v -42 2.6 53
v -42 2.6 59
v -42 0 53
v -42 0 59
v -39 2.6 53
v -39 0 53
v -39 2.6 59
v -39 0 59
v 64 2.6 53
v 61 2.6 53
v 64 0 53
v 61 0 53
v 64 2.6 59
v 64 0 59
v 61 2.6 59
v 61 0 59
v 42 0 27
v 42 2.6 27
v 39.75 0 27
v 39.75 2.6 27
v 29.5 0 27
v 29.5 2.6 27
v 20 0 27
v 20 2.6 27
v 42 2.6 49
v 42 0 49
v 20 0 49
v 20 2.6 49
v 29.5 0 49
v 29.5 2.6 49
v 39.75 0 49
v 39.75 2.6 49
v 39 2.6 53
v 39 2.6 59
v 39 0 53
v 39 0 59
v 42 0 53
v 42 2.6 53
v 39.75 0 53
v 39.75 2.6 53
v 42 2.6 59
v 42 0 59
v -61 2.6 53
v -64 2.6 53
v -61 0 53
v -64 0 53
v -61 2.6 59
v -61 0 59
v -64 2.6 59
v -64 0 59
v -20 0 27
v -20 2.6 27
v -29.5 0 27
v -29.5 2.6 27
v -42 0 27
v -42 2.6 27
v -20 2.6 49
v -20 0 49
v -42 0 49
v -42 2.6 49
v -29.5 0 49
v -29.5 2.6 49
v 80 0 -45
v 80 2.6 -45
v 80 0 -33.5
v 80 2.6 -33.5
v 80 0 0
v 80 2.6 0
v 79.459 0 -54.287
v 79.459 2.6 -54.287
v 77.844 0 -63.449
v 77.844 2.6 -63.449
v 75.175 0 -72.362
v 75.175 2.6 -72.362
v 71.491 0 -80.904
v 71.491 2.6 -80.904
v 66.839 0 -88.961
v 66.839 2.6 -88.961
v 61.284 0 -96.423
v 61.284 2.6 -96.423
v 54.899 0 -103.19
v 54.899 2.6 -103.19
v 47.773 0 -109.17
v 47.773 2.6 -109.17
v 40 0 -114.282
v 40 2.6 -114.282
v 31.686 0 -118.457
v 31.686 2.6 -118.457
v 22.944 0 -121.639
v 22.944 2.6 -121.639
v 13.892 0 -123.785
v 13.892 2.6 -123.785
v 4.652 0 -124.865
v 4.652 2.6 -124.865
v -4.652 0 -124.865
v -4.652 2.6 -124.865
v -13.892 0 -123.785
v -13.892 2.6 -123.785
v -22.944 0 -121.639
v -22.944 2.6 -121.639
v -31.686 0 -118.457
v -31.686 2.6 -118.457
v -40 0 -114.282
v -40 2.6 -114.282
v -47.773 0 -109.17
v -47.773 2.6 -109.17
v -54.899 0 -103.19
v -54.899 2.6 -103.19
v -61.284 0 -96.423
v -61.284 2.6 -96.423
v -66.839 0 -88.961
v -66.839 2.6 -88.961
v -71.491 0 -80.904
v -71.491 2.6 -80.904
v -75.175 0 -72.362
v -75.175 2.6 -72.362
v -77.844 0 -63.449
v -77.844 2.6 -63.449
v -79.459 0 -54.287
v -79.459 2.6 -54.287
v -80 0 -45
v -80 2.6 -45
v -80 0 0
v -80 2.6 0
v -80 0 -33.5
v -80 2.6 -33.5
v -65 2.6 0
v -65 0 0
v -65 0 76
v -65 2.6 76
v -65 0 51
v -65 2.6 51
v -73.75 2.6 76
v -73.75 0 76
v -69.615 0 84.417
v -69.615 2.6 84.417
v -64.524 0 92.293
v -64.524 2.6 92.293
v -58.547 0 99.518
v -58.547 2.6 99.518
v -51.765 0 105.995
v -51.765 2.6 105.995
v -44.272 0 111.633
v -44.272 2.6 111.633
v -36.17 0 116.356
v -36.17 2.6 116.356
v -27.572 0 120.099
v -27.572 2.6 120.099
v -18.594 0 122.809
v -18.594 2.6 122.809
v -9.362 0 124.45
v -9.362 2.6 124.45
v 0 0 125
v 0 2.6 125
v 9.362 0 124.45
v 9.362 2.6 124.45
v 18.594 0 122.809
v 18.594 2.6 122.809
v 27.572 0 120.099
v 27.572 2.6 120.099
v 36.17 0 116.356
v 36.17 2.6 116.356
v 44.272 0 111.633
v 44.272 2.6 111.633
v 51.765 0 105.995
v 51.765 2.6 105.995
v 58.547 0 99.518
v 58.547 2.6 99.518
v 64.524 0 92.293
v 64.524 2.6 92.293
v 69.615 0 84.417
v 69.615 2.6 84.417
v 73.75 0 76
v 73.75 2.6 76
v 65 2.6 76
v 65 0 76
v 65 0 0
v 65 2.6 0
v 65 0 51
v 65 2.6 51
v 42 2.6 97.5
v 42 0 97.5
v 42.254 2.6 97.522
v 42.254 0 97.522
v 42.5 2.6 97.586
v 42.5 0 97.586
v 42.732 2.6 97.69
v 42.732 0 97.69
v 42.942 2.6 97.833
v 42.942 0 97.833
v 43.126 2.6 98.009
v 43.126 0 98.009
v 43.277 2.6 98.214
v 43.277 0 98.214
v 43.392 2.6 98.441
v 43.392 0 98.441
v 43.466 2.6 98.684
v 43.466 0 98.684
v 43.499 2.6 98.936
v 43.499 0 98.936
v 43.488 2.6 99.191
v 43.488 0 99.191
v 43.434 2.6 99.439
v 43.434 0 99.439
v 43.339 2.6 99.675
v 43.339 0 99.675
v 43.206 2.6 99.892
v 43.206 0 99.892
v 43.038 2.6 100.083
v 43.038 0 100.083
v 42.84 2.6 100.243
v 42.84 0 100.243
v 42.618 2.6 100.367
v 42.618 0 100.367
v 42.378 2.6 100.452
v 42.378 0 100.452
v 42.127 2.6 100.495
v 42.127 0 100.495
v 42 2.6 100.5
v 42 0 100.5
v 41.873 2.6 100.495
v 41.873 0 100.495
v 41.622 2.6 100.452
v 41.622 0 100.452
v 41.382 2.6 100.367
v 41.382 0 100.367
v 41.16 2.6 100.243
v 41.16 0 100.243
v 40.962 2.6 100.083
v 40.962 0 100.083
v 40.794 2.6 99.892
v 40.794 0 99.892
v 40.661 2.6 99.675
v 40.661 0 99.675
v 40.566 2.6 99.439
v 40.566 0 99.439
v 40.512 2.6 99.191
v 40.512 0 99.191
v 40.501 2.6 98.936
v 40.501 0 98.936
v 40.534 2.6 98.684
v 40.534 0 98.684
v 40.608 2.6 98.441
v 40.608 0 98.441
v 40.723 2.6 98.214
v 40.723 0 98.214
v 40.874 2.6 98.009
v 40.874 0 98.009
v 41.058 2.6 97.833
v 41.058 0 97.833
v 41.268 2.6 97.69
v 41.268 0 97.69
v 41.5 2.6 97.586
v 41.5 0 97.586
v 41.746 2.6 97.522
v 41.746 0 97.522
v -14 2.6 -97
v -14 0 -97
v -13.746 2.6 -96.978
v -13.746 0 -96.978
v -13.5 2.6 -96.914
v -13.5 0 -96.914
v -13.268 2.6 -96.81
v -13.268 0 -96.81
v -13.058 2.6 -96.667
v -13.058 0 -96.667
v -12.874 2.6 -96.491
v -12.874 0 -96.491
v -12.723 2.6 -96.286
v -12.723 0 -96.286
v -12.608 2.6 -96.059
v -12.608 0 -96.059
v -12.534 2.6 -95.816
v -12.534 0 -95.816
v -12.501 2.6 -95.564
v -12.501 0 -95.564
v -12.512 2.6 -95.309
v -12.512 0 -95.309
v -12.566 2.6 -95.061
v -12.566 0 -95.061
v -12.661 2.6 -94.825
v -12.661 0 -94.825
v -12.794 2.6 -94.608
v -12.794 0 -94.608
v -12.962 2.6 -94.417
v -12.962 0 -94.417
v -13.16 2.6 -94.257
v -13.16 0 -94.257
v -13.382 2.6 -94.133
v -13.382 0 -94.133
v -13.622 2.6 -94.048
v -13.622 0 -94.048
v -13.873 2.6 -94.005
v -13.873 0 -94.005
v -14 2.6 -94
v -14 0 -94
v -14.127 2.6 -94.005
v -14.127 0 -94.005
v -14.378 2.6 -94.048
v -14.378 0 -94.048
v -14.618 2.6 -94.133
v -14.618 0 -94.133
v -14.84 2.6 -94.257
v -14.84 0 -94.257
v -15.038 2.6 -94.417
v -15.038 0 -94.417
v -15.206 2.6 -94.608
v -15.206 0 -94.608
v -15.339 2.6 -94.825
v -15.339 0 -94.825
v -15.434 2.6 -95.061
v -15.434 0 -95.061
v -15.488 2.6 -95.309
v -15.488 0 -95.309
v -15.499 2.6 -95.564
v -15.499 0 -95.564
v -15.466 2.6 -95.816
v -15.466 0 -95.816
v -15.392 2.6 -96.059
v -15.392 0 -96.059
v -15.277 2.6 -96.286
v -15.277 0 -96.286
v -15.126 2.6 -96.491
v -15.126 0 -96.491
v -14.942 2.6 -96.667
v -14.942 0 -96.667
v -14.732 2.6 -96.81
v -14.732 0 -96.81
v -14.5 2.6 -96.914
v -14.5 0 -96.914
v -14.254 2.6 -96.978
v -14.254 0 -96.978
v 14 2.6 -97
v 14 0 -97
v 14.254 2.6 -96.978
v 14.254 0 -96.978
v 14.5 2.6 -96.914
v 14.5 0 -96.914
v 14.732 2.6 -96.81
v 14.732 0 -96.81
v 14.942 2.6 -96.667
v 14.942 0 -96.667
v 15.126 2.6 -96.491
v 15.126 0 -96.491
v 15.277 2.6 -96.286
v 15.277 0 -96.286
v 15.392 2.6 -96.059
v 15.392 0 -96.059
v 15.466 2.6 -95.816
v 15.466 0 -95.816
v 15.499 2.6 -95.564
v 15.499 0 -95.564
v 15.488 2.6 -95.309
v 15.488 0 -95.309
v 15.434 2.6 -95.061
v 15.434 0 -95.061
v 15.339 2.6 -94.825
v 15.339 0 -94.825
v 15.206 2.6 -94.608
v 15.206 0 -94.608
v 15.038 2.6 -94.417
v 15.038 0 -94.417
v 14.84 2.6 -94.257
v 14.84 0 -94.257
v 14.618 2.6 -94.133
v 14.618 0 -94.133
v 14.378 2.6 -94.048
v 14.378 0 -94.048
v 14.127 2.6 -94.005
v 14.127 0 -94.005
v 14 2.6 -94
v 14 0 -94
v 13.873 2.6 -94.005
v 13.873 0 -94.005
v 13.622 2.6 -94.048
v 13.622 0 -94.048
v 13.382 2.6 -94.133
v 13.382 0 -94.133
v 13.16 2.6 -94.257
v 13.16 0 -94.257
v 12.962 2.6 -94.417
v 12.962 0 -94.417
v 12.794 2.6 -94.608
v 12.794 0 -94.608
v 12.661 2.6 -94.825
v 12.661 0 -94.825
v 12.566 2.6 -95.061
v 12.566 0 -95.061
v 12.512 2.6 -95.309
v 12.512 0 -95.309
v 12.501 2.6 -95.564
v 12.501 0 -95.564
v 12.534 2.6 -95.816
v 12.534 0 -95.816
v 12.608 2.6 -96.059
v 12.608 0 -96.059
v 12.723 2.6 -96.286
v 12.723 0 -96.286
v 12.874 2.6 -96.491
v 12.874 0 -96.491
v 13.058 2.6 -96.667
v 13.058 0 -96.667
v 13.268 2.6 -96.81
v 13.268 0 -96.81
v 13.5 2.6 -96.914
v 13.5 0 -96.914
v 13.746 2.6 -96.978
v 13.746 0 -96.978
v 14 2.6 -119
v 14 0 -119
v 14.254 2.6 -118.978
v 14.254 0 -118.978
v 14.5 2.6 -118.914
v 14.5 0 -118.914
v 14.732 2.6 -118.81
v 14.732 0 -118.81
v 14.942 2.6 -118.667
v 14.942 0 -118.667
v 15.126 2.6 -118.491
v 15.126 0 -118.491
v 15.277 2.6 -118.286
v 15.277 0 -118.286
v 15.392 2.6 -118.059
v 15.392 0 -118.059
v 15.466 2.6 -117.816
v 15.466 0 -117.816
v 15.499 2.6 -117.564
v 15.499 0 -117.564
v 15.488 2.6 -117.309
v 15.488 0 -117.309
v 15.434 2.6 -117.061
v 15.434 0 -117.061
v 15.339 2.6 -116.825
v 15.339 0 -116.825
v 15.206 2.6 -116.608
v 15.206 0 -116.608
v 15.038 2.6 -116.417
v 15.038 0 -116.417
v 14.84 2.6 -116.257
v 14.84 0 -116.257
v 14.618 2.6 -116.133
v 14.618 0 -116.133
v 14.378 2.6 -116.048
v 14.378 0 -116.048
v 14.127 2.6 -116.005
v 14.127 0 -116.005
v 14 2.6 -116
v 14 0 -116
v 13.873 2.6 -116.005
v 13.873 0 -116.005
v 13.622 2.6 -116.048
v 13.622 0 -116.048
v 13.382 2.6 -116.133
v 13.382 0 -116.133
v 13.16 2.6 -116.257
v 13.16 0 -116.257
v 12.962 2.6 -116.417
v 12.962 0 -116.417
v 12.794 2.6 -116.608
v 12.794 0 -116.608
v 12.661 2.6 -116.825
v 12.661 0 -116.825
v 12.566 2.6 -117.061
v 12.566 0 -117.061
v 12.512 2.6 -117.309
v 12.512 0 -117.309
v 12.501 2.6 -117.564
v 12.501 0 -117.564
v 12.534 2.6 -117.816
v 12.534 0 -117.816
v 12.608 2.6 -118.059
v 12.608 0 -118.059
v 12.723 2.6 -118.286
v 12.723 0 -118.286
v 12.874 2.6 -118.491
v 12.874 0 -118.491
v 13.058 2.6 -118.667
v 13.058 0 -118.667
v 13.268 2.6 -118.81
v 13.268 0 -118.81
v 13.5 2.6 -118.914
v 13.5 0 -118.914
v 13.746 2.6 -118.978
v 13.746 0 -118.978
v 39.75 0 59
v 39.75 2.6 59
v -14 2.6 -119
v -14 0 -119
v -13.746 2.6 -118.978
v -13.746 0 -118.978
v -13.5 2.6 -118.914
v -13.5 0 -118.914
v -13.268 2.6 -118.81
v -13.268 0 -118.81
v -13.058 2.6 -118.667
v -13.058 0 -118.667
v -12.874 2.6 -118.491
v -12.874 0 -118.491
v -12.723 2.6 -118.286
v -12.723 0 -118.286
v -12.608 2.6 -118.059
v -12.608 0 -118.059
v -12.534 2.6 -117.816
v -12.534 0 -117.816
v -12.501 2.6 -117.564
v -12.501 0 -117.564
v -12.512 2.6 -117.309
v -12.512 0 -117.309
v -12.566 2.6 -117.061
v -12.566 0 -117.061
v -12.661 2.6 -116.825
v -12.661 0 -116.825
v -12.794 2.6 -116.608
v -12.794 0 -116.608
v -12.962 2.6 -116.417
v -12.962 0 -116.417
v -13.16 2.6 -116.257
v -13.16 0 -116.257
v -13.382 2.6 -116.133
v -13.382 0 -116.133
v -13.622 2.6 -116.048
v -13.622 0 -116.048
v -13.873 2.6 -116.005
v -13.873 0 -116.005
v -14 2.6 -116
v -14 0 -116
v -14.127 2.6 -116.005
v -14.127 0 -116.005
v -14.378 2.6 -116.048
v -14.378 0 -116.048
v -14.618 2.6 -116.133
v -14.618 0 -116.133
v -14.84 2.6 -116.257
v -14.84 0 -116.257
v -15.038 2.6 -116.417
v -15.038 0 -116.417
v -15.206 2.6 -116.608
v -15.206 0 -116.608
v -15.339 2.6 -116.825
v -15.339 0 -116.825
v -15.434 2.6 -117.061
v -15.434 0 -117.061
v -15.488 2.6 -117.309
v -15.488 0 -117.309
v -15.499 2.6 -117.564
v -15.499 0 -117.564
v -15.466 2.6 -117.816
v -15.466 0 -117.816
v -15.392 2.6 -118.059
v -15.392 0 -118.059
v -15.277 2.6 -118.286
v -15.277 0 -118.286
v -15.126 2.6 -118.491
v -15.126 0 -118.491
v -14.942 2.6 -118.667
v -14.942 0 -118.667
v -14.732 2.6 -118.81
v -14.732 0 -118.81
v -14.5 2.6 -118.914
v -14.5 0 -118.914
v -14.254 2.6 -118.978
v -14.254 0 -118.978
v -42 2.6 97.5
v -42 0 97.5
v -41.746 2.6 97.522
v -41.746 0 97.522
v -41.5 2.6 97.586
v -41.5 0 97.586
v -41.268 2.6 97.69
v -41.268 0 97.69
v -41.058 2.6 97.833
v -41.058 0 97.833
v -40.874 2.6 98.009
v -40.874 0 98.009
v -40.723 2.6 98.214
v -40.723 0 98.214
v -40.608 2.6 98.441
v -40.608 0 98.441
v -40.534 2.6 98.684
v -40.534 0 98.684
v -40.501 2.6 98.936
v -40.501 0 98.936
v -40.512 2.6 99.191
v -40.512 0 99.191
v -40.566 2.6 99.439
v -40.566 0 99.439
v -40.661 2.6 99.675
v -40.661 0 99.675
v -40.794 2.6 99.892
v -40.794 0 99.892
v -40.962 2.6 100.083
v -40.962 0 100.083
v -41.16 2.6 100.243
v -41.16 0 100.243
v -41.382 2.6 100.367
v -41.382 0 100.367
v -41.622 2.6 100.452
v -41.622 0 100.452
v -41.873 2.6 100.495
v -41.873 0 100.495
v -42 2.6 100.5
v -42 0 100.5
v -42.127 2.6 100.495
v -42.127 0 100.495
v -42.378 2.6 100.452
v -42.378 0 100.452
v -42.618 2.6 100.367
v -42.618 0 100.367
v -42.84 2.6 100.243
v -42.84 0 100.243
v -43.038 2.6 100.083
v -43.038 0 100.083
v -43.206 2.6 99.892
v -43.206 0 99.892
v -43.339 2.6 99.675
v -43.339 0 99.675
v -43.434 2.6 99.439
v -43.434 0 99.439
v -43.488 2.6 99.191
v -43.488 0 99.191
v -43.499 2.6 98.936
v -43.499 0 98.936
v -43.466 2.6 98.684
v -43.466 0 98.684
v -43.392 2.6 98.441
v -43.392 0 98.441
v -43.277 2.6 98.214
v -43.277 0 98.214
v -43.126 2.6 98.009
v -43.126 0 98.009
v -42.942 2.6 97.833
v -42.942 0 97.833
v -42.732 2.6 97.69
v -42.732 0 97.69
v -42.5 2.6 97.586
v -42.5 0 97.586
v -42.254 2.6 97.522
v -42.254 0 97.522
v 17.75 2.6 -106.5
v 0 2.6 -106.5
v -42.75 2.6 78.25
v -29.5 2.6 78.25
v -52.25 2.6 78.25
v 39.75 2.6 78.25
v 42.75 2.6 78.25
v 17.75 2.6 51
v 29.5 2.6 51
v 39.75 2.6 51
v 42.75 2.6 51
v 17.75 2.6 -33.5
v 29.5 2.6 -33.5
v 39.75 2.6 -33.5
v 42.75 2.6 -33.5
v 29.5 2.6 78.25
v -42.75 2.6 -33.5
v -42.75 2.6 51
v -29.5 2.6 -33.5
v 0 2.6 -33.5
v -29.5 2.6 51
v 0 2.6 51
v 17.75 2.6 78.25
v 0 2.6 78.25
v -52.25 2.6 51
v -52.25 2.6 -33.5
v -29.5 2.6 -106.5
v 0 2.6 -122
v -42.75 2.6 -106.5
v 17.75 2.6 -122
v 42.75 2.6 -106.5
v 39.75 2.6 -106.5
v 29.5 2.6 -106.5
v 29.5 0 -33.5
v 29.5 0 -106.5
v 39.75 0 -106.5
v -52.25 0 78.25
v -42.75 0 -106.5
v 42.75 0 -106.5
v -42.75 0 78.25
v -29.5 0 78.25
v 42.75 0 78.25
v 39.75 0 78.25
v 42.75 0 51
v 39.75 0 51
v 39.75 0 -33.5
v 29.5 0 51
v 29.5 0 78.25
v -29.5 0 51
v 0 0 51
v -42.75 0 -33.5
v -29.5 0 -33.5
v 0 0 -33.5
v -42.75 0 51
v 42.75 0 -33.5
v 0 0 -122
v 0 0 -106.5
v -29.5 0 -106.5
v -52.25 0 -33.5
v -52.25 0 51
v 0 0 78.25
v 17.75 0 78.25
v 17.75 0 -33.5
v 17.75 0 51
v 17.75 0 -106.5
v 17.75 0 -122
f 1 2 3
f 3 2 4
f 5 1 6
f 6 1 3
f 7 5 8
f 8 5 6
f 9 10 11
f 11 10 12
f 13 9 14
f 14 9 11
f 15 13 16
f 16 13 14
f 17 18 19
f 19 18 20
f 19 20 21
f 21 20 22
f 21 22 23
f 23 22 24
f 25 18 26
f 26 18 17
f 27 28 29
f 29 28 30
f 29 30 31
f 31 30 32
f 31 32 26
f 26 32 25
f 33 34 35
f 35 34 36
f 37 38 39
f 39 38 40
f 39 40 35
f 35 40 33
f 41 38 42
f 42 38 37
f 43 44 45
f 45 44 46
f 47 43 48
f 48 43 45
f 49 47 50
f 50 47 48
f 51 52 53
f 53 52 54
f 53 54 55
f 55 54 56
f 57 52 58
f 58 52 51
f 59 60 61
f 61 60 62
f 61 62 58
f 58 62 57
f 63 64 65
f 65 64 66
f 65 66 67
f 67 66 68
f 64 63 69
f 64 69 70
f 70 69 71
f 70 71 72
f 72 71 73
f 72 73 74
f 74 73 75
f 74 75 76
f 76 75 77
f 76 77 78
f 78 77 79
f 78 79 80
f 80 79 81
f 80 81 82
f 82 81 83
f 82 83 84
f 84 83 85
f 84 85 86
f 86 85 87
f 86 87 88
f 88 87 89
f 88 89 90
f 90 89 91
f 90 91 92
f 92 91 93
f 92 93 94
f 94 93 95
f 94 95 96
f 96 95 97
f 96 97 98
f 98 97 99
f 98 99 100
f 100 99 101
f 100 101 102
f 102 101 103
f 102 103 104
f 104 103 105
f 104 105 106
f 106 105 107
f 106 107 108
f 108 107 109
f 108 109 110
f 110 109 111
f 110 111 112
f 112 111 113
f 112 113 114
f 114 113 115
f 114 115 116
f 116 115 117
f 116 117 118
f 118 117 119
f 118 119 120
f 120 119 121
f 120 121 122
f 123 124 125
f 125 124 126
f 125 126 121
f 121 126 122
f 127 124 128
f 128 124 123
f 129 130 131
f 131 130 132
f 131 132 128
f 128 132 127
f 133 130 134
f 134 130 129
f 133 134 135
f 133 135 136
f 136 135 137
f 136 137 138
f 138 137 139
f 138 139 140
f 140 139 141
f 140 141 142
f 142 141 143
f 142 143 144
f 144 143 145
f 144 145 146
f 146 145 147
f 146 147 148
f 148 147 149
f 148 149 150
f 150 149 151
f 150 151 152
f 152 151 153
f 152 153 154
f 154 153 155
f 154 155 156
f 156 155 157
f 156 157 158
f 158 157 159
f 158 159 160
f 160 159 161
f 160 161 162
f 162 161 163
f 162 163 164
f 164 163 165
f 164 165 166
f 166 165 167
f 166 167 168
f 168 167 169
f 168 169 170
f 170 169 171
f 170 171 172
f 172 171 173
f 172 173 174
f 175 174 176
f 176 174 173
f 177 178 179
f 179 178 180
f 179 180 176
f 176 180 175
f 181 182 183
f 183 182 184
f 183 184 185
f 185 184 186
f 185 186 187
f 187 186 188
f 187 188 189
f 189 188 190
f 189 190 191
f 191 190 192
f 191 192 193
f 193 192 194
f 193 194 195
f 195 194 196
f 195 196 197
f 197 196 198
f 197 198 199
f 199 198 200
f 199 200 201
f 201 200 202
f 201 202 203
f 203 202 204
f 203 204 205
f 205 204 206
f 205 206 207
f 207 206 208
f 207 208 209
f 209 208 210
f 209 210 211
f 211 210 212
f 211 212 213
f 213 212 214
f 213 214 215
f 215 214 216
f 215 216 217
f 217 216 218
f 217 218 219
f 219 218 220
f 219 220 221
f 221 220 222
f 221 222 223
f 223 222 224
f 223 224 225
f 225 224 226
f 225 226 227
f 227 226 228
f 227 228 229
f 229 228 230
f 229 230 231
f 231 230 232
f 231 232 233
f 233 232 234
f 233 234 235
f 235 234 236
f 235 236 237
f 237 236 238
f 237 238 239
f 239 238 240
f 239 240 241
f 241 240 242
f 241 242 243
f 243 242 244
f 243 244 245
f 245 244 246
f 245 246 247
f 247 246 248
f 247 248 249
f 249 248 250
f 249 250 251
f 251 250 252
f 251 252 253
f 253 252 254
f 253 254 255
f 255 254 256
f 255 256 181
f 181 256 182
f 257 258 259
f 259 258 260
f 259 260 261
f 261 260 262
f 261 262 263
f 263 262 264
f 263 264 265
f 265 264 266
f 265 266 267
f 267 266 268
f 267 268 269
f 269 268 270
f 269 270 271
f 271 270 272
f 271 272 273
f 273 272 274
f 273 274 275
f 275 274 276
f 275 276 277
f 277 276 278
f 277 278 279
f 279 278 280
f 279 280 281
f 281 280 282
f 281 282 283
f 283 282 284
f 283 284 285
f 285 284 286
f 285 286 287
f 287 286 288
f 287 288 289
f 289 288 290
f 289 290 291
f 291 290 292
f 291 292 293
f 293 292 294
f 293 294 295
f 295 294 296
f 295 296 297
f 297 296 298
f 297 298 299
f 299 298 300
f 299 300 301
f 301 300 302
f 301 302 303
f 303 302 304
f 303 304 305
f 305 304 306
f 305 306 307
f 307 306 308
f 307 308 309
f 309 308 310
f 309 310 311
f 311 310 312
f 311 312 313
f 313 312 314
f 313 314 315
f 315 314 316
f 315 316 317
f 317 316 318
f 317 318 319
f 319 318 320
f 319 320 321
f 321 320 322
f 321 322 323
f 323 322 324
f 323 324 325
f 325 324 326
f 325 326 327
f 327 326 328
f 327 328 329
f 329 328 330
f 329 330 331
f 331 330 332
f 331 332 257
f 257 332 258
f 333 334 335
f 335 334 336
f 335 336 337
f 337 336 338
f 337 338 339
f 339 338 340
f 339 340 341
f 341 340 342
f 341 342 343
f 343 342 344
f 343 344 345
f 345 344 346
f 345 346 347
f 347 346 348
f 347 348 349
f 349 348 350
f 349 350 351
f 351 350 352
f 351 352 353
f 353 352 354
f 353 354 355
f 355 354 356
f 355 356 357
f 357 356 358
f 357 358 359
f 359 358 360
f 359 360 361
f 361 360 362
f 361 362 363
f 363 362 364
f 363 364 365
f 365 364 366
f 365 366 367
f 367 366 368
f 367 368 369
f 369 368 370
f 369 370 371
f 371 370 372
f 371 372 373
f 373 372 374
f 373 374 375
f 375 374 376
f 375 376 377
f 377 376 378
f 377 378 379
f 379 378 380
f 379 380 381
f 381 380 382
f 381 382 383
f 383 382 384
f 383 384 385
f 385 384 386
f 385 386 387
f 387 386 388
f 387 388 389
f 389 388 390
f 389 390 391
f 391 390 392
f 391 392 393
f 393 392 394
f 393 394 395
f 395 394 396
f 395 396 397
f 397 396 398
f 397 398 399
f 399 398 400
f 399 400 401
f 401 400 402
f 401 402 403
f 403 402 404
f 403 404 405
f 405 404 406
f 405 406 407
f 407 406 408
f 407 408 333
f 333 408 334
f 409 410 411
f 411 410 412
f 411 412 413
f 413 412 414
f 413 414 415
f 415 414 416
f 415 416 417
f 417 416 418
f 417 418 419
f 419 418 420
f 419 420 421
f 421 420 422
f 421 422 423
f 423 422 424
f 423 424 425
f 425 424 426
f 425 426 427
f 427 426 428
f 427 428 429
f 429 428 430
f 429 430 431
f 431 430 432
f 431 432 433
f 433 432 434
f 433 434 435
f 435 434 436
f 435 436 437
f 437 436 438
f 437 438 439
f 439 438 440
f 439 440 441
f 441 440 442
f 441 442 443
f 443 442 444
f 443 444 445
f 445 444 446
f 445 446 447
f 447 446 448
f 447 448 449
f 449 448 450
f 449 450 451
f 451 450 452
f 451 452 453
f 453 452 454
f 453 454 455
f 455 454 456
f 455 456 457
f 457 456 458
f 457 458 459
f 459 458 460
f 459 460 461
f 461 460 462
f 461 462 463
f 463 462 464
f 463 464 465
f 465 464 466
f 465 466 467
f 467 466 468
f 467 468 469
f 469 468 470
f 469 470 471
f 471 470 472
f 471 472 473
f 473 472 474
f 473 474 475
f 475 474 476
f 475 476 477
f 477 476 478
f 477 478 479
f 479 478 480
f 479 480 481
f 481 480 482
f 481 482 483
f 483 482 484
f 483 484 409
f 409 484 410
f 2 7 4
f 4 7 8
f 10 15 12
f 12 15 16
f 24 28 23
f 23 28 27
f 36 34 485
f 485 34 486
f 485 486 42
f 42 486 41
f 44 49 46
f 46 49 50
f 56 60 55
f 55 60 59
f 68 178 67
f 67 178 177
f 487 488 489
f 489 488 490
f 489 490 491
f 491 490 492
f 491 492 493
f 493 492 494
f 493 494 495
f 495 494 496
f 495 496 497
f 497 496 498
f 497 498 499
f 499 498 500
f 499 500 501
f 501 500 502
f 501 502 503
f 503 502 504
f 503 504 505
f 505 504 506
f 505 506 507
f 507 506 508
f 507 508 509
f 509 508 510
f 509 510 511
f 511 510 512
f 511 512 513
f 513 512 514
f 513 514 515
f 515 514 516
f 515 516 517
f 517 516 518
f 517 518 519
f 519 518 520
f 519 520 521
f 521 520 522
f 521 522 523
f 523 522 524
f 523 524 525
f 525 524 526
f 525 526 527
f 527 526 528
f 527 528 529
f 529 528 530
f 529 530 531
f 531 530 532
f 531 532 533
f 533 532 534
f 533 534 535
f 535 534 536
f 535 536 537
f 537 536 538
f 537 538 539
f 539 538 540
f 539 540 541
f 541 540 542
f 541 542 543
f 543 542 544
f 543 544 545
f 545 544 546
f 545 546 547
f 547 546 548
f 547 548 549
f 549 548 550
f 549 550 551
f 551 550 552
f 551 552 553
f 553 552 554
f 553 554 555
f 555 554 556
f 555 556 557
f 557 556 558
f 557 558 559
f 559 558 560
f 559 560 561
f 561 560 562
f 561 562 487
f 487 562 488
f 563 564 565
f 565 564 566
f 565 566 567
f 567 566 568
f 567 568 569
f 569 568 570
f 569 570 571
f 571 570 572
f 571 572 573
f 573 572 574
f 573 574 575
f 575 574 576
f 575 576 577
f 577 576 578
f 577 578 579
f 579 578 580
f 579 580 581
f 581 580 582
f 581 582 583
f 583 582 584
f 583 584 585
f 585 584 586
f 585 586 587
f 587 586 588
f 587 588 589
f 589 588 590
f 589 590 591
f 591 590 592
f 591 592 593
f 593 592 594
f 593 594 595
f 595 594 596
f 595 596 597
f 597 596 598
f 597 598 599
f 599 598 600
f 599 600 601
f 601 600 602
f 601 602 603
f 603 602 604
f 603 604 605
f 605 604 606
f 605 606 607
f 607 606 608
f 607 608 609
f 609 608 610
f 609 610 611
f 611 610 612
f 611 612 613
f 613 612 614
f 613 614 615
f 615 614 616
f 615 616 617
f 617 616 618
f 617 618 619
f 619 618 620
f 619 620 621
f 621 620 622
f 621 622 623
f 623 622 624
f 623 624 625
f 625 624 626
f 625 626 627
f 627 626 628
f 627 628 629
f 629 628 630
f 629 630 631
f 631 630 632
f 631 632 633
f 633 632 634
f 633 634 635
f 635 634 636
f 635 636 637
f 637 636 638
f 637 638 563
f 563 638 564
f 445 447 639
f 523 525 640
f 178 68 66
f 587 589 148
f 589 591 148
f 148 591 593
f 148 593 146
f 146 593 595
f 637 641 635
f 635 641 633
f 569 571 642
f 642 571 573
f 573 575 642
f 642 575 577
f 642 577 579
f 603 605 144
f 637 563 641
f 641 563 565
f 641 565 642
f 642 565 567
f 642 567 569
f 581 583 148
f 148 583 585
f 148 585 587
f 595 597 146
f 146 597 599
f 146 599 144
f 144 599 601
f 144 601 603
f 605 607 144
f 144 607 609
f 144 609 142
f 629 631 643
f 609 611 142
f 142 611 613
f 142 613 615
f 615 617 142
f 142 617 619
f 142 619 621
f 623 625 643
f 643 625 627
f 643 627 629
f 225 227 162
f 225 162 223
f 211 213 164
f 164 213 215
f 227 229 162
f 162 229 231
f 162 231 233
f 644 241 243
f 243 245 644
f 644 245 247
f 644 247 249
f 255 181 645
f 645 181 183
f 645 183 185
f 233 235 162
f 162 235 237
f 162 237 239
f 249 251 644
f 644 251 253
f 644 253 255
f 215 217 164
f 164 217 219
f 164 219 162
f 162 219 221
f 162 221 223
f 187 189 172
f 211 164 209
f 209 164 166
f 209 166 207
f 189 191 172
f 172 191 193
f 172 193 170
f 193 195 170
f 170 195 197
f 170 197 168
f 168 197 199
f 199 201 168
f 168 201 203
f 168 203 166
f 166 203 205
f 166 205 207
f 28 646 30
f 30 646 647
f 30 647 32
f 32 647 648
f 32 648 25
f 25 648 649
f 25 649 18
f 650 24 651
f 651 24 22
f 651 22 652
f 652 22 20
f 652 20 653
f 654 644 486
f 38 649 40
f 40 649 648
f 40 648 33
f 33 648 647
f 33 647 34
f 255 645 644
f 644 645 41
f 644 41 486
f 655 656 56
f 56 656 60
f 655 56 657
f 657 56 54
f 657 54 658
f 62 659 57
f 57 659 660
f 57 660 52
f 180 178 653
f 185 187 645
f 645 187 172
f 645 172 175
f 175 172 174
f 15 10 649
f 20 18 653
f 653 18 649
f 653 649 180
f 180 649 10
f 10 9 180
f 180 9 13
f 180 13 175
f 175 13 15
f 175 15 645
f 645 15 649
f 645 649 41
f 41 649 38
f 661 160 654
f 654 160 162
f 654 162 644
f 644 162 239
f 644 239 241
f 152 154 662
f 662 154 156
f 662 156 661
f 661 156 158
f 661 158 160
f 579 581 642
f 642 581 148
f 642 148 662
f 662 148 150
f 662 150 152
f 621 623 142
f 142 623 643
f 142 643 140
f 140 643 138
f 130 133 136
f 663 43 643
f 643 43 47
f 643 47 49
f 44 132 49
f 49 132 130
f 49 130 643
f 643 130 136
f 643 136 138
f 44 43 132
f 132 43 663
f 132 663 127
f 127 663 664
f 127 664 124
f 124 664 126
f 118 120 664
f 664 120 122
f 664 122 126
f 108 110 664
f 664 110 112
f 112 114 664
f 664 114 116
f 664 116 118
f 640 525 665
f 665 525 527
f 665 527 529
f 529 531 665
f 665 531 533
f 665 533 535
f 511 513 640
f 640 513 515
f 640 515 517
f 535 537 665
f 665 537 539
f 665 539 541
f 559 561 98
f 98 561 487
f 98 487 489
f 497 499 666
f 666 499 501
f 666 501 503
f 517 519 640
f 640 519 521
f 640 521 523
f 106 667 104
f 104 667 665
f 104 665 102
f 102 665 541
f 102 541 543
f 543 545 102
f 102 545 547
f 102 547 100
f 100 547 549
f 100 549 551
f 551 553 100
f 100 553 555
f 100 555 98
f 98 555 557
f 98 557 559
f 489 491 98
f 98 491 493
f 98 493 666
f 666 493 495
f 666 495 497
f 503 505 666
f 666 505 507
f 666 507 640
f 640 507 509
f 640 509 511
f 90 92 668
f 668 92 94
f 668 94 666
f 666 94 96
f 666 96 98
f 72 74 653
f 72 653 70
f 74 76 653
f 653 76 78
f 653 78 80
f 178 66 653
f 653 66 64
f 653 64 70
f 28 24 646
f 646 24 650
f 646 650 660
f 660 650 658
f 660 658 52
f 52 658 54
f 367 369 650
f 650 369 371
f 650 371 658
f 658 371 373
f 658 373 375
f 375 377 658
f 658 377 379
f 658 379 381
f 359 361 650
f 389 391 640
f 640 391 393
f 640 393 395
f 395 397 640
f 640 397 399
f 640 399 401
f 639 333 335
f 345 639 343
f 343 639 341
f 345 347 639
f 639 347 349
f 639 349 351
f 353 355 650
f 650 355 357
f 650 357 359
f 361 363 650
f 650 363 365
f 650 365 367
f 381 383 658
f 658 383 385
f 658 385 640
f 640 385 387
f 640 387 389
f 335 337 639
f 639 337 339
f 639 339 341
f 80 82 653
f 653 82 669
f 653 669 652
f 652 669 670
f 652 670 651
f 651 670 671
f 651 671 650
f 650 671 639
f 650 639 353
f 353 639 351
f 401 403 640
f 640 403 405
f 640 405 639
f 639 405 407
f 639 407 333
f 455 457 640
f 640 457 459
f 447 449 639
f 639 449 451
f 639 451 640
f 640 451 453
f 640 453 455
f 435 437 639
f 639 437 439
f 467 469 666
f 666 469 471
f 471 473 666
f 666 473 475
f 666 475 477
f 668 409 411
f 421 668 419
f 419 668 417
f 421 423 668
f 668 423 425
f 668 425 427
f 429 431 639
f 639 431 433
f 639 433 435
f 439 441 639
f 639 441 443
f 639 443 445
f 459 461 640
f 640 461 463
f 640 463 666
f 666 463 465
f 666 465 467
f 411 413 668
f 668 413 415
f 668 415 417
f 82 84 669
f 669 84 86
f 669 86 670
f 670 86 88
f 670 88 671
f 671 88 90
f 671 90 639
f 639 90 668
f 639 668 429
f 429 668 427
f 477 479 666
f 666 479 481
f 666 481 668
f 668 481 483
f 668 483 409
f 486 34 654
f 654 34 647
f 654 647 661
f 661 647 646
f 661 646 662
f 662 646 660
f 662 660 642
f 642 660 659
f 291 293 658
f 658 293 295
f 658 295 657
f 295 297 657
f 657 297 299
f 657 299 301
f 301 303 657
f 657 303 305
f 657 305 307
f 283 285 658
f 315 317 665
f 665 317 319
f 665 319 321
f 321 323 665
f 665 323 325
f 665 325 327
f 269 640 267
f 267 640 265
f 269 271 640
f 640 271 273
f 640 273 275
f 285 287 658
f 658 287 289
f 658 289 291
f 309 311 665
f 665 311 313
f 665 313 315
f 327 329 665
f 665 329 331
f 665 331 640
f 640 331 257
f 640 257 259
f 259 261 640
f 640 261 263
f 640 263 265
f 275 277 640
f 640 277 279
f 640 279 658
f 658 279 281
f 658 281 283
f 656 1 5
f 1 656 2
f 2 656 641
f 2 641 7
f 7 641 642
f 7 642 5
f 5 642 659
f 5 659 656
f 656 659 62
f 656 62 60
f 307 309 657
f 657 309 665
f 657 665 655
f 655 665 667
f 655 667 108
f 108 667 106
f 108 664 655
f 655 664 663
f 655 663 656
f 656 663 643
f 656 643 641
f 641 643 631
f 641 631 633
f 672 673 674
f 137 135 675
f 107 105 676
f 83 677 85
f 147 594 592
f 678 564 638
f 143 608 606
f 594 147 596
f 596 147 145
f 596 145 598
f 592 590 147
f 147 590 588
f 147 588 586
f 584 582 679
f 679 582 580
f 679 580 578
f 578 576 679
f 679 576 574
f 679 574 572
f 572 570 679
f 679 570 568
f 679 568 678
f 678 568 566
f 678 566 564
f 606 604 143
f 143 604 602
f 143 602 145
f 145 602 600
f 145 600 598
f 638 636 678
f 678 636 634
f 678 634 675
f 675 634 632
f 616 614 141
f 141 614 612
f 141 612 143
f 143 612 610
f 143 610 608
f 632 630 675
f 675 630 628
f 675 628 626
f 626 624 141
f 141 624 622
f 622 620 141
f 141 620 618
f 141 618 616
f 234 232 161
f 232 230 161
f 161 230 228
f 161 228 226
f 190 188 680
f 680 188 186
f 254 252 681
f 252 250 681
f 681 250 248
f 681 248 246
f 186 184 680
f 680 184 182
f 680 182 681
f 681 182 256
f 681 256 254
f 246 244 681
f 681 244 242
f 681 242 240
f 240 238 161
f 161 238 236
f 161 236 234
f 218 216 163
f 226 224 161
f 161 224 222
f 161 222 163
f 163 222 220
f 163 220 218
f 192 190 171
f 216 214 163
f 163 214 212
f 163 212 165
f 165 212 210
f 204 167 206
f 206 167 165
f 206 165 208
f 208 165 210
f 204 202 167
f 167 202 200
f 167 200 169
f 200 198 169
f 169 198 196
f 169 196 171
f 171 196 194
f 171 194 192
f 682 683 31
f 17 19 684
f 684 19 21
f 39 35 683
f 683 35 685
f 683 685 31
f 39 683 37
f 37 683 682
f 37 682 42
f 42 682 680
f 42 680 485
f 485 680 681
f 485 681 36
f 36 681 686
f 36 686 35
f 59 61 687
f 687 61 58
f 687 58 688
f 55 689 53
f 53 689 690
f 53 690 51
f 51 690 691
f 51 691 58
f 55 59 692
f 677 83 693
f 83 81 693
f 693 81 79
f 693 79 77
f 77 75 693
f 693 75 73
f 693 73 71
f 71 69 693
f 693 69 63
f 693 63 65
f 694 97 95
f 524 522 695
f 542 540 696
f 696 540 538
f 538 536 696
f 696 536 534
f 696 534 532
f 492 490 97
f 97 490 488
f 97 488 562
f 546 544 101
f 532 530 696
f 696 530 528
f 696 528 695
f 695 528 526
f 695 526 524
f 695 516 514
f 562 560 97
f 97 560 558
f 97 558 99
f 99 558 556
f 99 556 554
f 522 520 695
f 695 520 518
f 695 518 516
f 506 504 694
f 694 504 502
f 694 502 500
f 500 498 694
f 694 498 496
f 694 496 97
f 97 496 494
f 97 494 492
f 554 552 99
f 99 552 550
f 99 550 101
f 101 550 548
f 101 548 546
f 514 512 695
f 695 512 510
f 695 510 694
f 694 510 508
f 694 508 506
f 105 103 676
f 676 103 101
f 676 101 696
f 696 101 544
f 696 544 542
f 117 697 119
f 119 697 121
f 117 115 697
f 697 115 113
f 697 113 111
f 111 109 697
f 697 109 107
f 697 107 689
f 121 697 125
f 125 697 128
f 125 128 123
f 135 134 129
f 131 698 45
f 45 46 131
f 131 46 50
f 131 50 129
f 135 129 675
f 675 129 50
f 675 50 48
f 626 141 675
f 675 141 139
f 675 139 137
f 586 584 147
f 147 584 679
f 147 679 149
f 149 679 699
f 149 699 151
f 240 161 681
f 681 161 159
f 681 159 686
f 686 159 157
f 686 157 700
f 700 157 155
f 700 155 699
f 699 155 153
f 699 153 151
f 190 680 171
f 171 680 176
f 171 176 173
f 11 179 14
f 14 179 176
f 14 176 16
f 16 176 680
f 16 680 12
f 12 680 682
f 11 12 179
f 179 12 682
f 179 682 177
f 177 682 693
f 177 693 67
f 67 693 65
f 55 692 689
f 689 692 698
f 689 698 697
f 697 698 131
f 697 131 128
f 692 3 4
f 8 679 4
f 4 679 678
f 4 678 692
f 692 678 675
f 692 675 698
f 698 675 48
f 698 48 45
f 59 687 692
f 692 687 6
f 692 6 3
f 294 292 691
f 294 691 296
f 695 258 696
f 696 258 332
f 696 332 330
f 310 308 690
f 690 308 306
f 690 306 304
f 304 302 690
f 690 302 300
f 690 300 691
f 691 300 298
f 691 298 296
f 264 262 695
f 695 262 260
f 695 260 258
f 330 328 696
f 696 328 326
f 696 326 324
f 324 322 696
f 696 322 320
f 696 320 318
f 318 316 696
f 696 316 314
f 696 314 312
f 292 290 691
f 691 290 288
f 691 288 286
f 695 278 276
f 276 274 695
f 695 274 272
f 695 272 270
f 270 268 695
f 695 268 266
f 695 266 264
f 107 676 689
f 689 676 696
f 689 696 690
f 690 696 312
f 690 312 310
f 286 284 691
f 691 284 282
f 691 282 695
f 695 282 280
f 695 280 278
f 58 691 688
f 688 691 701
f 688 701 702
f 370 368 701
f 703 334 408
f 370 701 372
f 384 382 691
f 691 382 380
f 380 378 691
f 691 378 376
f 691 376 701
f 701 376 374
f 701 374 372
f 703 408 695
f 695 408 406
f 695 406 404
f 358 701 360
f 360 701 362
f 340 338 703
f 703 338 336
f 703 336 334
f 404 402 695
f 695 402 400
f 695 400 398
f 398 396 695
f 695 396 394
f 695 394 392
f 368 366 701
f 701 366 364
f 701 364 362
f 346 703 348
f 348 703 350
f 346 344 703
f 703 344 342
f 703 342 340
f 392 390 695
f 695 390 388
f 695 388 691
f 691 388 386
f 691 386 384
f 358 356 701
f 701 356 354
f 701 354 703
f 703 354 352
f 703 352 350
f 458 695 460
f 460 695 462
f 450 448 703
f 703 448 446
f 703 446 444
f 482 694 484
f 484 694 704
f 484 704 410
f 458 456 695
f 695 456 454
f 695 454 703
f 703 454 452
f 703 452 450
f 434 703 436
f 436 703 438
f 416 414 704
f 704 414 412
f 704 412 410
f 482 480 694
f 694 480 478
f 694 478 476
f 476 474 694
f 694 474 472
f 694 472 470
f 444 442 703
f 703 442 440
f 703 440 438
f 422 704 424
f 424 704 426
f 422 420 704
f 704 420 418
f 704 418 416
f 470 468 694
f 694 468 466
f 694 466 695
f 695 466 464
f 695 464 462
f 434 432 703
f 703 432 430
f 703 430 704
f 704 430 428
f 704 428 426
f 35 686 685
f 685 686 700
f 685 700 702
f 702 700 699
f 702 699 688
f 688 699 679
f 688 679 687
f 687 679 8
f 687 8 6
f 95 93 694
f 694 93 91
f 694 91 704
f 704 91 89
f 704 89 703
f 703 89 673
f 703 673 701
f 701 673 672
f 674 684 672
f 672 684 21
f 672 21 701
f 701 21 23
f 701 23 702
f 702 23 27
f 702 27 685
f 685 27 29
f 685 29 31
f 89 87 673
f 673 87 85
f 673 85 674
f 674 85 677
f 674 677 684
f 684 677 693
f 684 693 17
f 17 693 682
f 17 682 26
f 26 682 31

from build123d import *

# Parameters (mm, degrees)
SKETCH2_R           = 1.5
SKETCH2_W           = 3
SKETCH2_H           = 6
SKETCH2_W_2         = 22
SKETCH2_H_2         = 22
BOSS_EXTRUDE2_DEPTH = 2.6


with BuildPart() as part:
    # Sketch2 → Boss-Extrude2 (new body)
    with BuildSketch(Plane(origin=(0, 0, 0), x_dir=(1, 0, 0), z_dir=(0, 1, 0))):
        with BuildLine():
            Line((-80, 45), (-80, 0))
            Line((-80, 0), (-65, 0))
            Line((-65, 0), (-65, -76))
            Line((-65, -76), (-73.74957627, -76))
            ThreePointArc((-73.74957627, -76), (0, -125), (73.74957627, -76))
            Line((73.74957627, -76), (65, -76))
            Line((65, -76), (65, 0))
            Line((65, 0), (80, 0))
            Line((80, 0), (80, 45))
            ThreePointArc((80, 45), (0, 125), (-80, 45))
        make_face()
        with Locations(Location((-42, -99, 0), (0, 0, 270))):
            Circle(SKETCH2_R, mode=Mode.SUBTRACT)
        with Locations((-62.5, -56)):
            Rectangle(SKETCH2_W, SKETCH2_H, mode=Mode.SUBTRACT)
        with Locations((-40.5, -56)):
            Rectangle(SKETCH2_W, SKETCH2_H, mode=Mode.SUBTRACT)
        with Locations((-31, -38)):
            Rectangle(SKETCH2_W_2, SKETCH2_H_2, mode=Mode.SUBTRACT)
        with Locations(Location((42, -99, 0), (0, 0, 270))):
            Circle(SKETCH2_R, mode=Mode.SUBTRACT)
        with Locations((40.5, -56)):
            Rectangle(SKETCH2_W, SKETCH2_H, mode=Mode.SUBTRACT)
        with Locations((31, -38)):
            Rectangle(SKETCH2_W_2, SKETCH2_H_2, mode=Mode.SUBTRACT)
        with Locations((62.5, -56)):
            Rectangle(SKETCH2_W, SKETCH2_H, mode=Mode.SUBTRACT)
        with Locations(Location((-14, 95.5, 0), (0, 0, 270))):
            Circle(SKETCH2_R, mode=Mode.SUBTRACT)
        with Locations(Location((-14, 117.5, 0), (0, 0, 270))):
            Circle(SKETCH2_R, mode=Mode.SUBTRACT)
        with Locations(Location((14, 95.5, 0), (0, 0, 270))):
            Circle(SKETCH2_R, mode=Mode.SUBTRACT)
        with Locations(Location((14, 117.5, 0), (0, 0, 270))):
            Circle(SKETCH2_R, mode=Mode.SUBTRACT)
    extrude(amount=BOSS_EXTRUDE2_DEPTH)


solid = part.part
